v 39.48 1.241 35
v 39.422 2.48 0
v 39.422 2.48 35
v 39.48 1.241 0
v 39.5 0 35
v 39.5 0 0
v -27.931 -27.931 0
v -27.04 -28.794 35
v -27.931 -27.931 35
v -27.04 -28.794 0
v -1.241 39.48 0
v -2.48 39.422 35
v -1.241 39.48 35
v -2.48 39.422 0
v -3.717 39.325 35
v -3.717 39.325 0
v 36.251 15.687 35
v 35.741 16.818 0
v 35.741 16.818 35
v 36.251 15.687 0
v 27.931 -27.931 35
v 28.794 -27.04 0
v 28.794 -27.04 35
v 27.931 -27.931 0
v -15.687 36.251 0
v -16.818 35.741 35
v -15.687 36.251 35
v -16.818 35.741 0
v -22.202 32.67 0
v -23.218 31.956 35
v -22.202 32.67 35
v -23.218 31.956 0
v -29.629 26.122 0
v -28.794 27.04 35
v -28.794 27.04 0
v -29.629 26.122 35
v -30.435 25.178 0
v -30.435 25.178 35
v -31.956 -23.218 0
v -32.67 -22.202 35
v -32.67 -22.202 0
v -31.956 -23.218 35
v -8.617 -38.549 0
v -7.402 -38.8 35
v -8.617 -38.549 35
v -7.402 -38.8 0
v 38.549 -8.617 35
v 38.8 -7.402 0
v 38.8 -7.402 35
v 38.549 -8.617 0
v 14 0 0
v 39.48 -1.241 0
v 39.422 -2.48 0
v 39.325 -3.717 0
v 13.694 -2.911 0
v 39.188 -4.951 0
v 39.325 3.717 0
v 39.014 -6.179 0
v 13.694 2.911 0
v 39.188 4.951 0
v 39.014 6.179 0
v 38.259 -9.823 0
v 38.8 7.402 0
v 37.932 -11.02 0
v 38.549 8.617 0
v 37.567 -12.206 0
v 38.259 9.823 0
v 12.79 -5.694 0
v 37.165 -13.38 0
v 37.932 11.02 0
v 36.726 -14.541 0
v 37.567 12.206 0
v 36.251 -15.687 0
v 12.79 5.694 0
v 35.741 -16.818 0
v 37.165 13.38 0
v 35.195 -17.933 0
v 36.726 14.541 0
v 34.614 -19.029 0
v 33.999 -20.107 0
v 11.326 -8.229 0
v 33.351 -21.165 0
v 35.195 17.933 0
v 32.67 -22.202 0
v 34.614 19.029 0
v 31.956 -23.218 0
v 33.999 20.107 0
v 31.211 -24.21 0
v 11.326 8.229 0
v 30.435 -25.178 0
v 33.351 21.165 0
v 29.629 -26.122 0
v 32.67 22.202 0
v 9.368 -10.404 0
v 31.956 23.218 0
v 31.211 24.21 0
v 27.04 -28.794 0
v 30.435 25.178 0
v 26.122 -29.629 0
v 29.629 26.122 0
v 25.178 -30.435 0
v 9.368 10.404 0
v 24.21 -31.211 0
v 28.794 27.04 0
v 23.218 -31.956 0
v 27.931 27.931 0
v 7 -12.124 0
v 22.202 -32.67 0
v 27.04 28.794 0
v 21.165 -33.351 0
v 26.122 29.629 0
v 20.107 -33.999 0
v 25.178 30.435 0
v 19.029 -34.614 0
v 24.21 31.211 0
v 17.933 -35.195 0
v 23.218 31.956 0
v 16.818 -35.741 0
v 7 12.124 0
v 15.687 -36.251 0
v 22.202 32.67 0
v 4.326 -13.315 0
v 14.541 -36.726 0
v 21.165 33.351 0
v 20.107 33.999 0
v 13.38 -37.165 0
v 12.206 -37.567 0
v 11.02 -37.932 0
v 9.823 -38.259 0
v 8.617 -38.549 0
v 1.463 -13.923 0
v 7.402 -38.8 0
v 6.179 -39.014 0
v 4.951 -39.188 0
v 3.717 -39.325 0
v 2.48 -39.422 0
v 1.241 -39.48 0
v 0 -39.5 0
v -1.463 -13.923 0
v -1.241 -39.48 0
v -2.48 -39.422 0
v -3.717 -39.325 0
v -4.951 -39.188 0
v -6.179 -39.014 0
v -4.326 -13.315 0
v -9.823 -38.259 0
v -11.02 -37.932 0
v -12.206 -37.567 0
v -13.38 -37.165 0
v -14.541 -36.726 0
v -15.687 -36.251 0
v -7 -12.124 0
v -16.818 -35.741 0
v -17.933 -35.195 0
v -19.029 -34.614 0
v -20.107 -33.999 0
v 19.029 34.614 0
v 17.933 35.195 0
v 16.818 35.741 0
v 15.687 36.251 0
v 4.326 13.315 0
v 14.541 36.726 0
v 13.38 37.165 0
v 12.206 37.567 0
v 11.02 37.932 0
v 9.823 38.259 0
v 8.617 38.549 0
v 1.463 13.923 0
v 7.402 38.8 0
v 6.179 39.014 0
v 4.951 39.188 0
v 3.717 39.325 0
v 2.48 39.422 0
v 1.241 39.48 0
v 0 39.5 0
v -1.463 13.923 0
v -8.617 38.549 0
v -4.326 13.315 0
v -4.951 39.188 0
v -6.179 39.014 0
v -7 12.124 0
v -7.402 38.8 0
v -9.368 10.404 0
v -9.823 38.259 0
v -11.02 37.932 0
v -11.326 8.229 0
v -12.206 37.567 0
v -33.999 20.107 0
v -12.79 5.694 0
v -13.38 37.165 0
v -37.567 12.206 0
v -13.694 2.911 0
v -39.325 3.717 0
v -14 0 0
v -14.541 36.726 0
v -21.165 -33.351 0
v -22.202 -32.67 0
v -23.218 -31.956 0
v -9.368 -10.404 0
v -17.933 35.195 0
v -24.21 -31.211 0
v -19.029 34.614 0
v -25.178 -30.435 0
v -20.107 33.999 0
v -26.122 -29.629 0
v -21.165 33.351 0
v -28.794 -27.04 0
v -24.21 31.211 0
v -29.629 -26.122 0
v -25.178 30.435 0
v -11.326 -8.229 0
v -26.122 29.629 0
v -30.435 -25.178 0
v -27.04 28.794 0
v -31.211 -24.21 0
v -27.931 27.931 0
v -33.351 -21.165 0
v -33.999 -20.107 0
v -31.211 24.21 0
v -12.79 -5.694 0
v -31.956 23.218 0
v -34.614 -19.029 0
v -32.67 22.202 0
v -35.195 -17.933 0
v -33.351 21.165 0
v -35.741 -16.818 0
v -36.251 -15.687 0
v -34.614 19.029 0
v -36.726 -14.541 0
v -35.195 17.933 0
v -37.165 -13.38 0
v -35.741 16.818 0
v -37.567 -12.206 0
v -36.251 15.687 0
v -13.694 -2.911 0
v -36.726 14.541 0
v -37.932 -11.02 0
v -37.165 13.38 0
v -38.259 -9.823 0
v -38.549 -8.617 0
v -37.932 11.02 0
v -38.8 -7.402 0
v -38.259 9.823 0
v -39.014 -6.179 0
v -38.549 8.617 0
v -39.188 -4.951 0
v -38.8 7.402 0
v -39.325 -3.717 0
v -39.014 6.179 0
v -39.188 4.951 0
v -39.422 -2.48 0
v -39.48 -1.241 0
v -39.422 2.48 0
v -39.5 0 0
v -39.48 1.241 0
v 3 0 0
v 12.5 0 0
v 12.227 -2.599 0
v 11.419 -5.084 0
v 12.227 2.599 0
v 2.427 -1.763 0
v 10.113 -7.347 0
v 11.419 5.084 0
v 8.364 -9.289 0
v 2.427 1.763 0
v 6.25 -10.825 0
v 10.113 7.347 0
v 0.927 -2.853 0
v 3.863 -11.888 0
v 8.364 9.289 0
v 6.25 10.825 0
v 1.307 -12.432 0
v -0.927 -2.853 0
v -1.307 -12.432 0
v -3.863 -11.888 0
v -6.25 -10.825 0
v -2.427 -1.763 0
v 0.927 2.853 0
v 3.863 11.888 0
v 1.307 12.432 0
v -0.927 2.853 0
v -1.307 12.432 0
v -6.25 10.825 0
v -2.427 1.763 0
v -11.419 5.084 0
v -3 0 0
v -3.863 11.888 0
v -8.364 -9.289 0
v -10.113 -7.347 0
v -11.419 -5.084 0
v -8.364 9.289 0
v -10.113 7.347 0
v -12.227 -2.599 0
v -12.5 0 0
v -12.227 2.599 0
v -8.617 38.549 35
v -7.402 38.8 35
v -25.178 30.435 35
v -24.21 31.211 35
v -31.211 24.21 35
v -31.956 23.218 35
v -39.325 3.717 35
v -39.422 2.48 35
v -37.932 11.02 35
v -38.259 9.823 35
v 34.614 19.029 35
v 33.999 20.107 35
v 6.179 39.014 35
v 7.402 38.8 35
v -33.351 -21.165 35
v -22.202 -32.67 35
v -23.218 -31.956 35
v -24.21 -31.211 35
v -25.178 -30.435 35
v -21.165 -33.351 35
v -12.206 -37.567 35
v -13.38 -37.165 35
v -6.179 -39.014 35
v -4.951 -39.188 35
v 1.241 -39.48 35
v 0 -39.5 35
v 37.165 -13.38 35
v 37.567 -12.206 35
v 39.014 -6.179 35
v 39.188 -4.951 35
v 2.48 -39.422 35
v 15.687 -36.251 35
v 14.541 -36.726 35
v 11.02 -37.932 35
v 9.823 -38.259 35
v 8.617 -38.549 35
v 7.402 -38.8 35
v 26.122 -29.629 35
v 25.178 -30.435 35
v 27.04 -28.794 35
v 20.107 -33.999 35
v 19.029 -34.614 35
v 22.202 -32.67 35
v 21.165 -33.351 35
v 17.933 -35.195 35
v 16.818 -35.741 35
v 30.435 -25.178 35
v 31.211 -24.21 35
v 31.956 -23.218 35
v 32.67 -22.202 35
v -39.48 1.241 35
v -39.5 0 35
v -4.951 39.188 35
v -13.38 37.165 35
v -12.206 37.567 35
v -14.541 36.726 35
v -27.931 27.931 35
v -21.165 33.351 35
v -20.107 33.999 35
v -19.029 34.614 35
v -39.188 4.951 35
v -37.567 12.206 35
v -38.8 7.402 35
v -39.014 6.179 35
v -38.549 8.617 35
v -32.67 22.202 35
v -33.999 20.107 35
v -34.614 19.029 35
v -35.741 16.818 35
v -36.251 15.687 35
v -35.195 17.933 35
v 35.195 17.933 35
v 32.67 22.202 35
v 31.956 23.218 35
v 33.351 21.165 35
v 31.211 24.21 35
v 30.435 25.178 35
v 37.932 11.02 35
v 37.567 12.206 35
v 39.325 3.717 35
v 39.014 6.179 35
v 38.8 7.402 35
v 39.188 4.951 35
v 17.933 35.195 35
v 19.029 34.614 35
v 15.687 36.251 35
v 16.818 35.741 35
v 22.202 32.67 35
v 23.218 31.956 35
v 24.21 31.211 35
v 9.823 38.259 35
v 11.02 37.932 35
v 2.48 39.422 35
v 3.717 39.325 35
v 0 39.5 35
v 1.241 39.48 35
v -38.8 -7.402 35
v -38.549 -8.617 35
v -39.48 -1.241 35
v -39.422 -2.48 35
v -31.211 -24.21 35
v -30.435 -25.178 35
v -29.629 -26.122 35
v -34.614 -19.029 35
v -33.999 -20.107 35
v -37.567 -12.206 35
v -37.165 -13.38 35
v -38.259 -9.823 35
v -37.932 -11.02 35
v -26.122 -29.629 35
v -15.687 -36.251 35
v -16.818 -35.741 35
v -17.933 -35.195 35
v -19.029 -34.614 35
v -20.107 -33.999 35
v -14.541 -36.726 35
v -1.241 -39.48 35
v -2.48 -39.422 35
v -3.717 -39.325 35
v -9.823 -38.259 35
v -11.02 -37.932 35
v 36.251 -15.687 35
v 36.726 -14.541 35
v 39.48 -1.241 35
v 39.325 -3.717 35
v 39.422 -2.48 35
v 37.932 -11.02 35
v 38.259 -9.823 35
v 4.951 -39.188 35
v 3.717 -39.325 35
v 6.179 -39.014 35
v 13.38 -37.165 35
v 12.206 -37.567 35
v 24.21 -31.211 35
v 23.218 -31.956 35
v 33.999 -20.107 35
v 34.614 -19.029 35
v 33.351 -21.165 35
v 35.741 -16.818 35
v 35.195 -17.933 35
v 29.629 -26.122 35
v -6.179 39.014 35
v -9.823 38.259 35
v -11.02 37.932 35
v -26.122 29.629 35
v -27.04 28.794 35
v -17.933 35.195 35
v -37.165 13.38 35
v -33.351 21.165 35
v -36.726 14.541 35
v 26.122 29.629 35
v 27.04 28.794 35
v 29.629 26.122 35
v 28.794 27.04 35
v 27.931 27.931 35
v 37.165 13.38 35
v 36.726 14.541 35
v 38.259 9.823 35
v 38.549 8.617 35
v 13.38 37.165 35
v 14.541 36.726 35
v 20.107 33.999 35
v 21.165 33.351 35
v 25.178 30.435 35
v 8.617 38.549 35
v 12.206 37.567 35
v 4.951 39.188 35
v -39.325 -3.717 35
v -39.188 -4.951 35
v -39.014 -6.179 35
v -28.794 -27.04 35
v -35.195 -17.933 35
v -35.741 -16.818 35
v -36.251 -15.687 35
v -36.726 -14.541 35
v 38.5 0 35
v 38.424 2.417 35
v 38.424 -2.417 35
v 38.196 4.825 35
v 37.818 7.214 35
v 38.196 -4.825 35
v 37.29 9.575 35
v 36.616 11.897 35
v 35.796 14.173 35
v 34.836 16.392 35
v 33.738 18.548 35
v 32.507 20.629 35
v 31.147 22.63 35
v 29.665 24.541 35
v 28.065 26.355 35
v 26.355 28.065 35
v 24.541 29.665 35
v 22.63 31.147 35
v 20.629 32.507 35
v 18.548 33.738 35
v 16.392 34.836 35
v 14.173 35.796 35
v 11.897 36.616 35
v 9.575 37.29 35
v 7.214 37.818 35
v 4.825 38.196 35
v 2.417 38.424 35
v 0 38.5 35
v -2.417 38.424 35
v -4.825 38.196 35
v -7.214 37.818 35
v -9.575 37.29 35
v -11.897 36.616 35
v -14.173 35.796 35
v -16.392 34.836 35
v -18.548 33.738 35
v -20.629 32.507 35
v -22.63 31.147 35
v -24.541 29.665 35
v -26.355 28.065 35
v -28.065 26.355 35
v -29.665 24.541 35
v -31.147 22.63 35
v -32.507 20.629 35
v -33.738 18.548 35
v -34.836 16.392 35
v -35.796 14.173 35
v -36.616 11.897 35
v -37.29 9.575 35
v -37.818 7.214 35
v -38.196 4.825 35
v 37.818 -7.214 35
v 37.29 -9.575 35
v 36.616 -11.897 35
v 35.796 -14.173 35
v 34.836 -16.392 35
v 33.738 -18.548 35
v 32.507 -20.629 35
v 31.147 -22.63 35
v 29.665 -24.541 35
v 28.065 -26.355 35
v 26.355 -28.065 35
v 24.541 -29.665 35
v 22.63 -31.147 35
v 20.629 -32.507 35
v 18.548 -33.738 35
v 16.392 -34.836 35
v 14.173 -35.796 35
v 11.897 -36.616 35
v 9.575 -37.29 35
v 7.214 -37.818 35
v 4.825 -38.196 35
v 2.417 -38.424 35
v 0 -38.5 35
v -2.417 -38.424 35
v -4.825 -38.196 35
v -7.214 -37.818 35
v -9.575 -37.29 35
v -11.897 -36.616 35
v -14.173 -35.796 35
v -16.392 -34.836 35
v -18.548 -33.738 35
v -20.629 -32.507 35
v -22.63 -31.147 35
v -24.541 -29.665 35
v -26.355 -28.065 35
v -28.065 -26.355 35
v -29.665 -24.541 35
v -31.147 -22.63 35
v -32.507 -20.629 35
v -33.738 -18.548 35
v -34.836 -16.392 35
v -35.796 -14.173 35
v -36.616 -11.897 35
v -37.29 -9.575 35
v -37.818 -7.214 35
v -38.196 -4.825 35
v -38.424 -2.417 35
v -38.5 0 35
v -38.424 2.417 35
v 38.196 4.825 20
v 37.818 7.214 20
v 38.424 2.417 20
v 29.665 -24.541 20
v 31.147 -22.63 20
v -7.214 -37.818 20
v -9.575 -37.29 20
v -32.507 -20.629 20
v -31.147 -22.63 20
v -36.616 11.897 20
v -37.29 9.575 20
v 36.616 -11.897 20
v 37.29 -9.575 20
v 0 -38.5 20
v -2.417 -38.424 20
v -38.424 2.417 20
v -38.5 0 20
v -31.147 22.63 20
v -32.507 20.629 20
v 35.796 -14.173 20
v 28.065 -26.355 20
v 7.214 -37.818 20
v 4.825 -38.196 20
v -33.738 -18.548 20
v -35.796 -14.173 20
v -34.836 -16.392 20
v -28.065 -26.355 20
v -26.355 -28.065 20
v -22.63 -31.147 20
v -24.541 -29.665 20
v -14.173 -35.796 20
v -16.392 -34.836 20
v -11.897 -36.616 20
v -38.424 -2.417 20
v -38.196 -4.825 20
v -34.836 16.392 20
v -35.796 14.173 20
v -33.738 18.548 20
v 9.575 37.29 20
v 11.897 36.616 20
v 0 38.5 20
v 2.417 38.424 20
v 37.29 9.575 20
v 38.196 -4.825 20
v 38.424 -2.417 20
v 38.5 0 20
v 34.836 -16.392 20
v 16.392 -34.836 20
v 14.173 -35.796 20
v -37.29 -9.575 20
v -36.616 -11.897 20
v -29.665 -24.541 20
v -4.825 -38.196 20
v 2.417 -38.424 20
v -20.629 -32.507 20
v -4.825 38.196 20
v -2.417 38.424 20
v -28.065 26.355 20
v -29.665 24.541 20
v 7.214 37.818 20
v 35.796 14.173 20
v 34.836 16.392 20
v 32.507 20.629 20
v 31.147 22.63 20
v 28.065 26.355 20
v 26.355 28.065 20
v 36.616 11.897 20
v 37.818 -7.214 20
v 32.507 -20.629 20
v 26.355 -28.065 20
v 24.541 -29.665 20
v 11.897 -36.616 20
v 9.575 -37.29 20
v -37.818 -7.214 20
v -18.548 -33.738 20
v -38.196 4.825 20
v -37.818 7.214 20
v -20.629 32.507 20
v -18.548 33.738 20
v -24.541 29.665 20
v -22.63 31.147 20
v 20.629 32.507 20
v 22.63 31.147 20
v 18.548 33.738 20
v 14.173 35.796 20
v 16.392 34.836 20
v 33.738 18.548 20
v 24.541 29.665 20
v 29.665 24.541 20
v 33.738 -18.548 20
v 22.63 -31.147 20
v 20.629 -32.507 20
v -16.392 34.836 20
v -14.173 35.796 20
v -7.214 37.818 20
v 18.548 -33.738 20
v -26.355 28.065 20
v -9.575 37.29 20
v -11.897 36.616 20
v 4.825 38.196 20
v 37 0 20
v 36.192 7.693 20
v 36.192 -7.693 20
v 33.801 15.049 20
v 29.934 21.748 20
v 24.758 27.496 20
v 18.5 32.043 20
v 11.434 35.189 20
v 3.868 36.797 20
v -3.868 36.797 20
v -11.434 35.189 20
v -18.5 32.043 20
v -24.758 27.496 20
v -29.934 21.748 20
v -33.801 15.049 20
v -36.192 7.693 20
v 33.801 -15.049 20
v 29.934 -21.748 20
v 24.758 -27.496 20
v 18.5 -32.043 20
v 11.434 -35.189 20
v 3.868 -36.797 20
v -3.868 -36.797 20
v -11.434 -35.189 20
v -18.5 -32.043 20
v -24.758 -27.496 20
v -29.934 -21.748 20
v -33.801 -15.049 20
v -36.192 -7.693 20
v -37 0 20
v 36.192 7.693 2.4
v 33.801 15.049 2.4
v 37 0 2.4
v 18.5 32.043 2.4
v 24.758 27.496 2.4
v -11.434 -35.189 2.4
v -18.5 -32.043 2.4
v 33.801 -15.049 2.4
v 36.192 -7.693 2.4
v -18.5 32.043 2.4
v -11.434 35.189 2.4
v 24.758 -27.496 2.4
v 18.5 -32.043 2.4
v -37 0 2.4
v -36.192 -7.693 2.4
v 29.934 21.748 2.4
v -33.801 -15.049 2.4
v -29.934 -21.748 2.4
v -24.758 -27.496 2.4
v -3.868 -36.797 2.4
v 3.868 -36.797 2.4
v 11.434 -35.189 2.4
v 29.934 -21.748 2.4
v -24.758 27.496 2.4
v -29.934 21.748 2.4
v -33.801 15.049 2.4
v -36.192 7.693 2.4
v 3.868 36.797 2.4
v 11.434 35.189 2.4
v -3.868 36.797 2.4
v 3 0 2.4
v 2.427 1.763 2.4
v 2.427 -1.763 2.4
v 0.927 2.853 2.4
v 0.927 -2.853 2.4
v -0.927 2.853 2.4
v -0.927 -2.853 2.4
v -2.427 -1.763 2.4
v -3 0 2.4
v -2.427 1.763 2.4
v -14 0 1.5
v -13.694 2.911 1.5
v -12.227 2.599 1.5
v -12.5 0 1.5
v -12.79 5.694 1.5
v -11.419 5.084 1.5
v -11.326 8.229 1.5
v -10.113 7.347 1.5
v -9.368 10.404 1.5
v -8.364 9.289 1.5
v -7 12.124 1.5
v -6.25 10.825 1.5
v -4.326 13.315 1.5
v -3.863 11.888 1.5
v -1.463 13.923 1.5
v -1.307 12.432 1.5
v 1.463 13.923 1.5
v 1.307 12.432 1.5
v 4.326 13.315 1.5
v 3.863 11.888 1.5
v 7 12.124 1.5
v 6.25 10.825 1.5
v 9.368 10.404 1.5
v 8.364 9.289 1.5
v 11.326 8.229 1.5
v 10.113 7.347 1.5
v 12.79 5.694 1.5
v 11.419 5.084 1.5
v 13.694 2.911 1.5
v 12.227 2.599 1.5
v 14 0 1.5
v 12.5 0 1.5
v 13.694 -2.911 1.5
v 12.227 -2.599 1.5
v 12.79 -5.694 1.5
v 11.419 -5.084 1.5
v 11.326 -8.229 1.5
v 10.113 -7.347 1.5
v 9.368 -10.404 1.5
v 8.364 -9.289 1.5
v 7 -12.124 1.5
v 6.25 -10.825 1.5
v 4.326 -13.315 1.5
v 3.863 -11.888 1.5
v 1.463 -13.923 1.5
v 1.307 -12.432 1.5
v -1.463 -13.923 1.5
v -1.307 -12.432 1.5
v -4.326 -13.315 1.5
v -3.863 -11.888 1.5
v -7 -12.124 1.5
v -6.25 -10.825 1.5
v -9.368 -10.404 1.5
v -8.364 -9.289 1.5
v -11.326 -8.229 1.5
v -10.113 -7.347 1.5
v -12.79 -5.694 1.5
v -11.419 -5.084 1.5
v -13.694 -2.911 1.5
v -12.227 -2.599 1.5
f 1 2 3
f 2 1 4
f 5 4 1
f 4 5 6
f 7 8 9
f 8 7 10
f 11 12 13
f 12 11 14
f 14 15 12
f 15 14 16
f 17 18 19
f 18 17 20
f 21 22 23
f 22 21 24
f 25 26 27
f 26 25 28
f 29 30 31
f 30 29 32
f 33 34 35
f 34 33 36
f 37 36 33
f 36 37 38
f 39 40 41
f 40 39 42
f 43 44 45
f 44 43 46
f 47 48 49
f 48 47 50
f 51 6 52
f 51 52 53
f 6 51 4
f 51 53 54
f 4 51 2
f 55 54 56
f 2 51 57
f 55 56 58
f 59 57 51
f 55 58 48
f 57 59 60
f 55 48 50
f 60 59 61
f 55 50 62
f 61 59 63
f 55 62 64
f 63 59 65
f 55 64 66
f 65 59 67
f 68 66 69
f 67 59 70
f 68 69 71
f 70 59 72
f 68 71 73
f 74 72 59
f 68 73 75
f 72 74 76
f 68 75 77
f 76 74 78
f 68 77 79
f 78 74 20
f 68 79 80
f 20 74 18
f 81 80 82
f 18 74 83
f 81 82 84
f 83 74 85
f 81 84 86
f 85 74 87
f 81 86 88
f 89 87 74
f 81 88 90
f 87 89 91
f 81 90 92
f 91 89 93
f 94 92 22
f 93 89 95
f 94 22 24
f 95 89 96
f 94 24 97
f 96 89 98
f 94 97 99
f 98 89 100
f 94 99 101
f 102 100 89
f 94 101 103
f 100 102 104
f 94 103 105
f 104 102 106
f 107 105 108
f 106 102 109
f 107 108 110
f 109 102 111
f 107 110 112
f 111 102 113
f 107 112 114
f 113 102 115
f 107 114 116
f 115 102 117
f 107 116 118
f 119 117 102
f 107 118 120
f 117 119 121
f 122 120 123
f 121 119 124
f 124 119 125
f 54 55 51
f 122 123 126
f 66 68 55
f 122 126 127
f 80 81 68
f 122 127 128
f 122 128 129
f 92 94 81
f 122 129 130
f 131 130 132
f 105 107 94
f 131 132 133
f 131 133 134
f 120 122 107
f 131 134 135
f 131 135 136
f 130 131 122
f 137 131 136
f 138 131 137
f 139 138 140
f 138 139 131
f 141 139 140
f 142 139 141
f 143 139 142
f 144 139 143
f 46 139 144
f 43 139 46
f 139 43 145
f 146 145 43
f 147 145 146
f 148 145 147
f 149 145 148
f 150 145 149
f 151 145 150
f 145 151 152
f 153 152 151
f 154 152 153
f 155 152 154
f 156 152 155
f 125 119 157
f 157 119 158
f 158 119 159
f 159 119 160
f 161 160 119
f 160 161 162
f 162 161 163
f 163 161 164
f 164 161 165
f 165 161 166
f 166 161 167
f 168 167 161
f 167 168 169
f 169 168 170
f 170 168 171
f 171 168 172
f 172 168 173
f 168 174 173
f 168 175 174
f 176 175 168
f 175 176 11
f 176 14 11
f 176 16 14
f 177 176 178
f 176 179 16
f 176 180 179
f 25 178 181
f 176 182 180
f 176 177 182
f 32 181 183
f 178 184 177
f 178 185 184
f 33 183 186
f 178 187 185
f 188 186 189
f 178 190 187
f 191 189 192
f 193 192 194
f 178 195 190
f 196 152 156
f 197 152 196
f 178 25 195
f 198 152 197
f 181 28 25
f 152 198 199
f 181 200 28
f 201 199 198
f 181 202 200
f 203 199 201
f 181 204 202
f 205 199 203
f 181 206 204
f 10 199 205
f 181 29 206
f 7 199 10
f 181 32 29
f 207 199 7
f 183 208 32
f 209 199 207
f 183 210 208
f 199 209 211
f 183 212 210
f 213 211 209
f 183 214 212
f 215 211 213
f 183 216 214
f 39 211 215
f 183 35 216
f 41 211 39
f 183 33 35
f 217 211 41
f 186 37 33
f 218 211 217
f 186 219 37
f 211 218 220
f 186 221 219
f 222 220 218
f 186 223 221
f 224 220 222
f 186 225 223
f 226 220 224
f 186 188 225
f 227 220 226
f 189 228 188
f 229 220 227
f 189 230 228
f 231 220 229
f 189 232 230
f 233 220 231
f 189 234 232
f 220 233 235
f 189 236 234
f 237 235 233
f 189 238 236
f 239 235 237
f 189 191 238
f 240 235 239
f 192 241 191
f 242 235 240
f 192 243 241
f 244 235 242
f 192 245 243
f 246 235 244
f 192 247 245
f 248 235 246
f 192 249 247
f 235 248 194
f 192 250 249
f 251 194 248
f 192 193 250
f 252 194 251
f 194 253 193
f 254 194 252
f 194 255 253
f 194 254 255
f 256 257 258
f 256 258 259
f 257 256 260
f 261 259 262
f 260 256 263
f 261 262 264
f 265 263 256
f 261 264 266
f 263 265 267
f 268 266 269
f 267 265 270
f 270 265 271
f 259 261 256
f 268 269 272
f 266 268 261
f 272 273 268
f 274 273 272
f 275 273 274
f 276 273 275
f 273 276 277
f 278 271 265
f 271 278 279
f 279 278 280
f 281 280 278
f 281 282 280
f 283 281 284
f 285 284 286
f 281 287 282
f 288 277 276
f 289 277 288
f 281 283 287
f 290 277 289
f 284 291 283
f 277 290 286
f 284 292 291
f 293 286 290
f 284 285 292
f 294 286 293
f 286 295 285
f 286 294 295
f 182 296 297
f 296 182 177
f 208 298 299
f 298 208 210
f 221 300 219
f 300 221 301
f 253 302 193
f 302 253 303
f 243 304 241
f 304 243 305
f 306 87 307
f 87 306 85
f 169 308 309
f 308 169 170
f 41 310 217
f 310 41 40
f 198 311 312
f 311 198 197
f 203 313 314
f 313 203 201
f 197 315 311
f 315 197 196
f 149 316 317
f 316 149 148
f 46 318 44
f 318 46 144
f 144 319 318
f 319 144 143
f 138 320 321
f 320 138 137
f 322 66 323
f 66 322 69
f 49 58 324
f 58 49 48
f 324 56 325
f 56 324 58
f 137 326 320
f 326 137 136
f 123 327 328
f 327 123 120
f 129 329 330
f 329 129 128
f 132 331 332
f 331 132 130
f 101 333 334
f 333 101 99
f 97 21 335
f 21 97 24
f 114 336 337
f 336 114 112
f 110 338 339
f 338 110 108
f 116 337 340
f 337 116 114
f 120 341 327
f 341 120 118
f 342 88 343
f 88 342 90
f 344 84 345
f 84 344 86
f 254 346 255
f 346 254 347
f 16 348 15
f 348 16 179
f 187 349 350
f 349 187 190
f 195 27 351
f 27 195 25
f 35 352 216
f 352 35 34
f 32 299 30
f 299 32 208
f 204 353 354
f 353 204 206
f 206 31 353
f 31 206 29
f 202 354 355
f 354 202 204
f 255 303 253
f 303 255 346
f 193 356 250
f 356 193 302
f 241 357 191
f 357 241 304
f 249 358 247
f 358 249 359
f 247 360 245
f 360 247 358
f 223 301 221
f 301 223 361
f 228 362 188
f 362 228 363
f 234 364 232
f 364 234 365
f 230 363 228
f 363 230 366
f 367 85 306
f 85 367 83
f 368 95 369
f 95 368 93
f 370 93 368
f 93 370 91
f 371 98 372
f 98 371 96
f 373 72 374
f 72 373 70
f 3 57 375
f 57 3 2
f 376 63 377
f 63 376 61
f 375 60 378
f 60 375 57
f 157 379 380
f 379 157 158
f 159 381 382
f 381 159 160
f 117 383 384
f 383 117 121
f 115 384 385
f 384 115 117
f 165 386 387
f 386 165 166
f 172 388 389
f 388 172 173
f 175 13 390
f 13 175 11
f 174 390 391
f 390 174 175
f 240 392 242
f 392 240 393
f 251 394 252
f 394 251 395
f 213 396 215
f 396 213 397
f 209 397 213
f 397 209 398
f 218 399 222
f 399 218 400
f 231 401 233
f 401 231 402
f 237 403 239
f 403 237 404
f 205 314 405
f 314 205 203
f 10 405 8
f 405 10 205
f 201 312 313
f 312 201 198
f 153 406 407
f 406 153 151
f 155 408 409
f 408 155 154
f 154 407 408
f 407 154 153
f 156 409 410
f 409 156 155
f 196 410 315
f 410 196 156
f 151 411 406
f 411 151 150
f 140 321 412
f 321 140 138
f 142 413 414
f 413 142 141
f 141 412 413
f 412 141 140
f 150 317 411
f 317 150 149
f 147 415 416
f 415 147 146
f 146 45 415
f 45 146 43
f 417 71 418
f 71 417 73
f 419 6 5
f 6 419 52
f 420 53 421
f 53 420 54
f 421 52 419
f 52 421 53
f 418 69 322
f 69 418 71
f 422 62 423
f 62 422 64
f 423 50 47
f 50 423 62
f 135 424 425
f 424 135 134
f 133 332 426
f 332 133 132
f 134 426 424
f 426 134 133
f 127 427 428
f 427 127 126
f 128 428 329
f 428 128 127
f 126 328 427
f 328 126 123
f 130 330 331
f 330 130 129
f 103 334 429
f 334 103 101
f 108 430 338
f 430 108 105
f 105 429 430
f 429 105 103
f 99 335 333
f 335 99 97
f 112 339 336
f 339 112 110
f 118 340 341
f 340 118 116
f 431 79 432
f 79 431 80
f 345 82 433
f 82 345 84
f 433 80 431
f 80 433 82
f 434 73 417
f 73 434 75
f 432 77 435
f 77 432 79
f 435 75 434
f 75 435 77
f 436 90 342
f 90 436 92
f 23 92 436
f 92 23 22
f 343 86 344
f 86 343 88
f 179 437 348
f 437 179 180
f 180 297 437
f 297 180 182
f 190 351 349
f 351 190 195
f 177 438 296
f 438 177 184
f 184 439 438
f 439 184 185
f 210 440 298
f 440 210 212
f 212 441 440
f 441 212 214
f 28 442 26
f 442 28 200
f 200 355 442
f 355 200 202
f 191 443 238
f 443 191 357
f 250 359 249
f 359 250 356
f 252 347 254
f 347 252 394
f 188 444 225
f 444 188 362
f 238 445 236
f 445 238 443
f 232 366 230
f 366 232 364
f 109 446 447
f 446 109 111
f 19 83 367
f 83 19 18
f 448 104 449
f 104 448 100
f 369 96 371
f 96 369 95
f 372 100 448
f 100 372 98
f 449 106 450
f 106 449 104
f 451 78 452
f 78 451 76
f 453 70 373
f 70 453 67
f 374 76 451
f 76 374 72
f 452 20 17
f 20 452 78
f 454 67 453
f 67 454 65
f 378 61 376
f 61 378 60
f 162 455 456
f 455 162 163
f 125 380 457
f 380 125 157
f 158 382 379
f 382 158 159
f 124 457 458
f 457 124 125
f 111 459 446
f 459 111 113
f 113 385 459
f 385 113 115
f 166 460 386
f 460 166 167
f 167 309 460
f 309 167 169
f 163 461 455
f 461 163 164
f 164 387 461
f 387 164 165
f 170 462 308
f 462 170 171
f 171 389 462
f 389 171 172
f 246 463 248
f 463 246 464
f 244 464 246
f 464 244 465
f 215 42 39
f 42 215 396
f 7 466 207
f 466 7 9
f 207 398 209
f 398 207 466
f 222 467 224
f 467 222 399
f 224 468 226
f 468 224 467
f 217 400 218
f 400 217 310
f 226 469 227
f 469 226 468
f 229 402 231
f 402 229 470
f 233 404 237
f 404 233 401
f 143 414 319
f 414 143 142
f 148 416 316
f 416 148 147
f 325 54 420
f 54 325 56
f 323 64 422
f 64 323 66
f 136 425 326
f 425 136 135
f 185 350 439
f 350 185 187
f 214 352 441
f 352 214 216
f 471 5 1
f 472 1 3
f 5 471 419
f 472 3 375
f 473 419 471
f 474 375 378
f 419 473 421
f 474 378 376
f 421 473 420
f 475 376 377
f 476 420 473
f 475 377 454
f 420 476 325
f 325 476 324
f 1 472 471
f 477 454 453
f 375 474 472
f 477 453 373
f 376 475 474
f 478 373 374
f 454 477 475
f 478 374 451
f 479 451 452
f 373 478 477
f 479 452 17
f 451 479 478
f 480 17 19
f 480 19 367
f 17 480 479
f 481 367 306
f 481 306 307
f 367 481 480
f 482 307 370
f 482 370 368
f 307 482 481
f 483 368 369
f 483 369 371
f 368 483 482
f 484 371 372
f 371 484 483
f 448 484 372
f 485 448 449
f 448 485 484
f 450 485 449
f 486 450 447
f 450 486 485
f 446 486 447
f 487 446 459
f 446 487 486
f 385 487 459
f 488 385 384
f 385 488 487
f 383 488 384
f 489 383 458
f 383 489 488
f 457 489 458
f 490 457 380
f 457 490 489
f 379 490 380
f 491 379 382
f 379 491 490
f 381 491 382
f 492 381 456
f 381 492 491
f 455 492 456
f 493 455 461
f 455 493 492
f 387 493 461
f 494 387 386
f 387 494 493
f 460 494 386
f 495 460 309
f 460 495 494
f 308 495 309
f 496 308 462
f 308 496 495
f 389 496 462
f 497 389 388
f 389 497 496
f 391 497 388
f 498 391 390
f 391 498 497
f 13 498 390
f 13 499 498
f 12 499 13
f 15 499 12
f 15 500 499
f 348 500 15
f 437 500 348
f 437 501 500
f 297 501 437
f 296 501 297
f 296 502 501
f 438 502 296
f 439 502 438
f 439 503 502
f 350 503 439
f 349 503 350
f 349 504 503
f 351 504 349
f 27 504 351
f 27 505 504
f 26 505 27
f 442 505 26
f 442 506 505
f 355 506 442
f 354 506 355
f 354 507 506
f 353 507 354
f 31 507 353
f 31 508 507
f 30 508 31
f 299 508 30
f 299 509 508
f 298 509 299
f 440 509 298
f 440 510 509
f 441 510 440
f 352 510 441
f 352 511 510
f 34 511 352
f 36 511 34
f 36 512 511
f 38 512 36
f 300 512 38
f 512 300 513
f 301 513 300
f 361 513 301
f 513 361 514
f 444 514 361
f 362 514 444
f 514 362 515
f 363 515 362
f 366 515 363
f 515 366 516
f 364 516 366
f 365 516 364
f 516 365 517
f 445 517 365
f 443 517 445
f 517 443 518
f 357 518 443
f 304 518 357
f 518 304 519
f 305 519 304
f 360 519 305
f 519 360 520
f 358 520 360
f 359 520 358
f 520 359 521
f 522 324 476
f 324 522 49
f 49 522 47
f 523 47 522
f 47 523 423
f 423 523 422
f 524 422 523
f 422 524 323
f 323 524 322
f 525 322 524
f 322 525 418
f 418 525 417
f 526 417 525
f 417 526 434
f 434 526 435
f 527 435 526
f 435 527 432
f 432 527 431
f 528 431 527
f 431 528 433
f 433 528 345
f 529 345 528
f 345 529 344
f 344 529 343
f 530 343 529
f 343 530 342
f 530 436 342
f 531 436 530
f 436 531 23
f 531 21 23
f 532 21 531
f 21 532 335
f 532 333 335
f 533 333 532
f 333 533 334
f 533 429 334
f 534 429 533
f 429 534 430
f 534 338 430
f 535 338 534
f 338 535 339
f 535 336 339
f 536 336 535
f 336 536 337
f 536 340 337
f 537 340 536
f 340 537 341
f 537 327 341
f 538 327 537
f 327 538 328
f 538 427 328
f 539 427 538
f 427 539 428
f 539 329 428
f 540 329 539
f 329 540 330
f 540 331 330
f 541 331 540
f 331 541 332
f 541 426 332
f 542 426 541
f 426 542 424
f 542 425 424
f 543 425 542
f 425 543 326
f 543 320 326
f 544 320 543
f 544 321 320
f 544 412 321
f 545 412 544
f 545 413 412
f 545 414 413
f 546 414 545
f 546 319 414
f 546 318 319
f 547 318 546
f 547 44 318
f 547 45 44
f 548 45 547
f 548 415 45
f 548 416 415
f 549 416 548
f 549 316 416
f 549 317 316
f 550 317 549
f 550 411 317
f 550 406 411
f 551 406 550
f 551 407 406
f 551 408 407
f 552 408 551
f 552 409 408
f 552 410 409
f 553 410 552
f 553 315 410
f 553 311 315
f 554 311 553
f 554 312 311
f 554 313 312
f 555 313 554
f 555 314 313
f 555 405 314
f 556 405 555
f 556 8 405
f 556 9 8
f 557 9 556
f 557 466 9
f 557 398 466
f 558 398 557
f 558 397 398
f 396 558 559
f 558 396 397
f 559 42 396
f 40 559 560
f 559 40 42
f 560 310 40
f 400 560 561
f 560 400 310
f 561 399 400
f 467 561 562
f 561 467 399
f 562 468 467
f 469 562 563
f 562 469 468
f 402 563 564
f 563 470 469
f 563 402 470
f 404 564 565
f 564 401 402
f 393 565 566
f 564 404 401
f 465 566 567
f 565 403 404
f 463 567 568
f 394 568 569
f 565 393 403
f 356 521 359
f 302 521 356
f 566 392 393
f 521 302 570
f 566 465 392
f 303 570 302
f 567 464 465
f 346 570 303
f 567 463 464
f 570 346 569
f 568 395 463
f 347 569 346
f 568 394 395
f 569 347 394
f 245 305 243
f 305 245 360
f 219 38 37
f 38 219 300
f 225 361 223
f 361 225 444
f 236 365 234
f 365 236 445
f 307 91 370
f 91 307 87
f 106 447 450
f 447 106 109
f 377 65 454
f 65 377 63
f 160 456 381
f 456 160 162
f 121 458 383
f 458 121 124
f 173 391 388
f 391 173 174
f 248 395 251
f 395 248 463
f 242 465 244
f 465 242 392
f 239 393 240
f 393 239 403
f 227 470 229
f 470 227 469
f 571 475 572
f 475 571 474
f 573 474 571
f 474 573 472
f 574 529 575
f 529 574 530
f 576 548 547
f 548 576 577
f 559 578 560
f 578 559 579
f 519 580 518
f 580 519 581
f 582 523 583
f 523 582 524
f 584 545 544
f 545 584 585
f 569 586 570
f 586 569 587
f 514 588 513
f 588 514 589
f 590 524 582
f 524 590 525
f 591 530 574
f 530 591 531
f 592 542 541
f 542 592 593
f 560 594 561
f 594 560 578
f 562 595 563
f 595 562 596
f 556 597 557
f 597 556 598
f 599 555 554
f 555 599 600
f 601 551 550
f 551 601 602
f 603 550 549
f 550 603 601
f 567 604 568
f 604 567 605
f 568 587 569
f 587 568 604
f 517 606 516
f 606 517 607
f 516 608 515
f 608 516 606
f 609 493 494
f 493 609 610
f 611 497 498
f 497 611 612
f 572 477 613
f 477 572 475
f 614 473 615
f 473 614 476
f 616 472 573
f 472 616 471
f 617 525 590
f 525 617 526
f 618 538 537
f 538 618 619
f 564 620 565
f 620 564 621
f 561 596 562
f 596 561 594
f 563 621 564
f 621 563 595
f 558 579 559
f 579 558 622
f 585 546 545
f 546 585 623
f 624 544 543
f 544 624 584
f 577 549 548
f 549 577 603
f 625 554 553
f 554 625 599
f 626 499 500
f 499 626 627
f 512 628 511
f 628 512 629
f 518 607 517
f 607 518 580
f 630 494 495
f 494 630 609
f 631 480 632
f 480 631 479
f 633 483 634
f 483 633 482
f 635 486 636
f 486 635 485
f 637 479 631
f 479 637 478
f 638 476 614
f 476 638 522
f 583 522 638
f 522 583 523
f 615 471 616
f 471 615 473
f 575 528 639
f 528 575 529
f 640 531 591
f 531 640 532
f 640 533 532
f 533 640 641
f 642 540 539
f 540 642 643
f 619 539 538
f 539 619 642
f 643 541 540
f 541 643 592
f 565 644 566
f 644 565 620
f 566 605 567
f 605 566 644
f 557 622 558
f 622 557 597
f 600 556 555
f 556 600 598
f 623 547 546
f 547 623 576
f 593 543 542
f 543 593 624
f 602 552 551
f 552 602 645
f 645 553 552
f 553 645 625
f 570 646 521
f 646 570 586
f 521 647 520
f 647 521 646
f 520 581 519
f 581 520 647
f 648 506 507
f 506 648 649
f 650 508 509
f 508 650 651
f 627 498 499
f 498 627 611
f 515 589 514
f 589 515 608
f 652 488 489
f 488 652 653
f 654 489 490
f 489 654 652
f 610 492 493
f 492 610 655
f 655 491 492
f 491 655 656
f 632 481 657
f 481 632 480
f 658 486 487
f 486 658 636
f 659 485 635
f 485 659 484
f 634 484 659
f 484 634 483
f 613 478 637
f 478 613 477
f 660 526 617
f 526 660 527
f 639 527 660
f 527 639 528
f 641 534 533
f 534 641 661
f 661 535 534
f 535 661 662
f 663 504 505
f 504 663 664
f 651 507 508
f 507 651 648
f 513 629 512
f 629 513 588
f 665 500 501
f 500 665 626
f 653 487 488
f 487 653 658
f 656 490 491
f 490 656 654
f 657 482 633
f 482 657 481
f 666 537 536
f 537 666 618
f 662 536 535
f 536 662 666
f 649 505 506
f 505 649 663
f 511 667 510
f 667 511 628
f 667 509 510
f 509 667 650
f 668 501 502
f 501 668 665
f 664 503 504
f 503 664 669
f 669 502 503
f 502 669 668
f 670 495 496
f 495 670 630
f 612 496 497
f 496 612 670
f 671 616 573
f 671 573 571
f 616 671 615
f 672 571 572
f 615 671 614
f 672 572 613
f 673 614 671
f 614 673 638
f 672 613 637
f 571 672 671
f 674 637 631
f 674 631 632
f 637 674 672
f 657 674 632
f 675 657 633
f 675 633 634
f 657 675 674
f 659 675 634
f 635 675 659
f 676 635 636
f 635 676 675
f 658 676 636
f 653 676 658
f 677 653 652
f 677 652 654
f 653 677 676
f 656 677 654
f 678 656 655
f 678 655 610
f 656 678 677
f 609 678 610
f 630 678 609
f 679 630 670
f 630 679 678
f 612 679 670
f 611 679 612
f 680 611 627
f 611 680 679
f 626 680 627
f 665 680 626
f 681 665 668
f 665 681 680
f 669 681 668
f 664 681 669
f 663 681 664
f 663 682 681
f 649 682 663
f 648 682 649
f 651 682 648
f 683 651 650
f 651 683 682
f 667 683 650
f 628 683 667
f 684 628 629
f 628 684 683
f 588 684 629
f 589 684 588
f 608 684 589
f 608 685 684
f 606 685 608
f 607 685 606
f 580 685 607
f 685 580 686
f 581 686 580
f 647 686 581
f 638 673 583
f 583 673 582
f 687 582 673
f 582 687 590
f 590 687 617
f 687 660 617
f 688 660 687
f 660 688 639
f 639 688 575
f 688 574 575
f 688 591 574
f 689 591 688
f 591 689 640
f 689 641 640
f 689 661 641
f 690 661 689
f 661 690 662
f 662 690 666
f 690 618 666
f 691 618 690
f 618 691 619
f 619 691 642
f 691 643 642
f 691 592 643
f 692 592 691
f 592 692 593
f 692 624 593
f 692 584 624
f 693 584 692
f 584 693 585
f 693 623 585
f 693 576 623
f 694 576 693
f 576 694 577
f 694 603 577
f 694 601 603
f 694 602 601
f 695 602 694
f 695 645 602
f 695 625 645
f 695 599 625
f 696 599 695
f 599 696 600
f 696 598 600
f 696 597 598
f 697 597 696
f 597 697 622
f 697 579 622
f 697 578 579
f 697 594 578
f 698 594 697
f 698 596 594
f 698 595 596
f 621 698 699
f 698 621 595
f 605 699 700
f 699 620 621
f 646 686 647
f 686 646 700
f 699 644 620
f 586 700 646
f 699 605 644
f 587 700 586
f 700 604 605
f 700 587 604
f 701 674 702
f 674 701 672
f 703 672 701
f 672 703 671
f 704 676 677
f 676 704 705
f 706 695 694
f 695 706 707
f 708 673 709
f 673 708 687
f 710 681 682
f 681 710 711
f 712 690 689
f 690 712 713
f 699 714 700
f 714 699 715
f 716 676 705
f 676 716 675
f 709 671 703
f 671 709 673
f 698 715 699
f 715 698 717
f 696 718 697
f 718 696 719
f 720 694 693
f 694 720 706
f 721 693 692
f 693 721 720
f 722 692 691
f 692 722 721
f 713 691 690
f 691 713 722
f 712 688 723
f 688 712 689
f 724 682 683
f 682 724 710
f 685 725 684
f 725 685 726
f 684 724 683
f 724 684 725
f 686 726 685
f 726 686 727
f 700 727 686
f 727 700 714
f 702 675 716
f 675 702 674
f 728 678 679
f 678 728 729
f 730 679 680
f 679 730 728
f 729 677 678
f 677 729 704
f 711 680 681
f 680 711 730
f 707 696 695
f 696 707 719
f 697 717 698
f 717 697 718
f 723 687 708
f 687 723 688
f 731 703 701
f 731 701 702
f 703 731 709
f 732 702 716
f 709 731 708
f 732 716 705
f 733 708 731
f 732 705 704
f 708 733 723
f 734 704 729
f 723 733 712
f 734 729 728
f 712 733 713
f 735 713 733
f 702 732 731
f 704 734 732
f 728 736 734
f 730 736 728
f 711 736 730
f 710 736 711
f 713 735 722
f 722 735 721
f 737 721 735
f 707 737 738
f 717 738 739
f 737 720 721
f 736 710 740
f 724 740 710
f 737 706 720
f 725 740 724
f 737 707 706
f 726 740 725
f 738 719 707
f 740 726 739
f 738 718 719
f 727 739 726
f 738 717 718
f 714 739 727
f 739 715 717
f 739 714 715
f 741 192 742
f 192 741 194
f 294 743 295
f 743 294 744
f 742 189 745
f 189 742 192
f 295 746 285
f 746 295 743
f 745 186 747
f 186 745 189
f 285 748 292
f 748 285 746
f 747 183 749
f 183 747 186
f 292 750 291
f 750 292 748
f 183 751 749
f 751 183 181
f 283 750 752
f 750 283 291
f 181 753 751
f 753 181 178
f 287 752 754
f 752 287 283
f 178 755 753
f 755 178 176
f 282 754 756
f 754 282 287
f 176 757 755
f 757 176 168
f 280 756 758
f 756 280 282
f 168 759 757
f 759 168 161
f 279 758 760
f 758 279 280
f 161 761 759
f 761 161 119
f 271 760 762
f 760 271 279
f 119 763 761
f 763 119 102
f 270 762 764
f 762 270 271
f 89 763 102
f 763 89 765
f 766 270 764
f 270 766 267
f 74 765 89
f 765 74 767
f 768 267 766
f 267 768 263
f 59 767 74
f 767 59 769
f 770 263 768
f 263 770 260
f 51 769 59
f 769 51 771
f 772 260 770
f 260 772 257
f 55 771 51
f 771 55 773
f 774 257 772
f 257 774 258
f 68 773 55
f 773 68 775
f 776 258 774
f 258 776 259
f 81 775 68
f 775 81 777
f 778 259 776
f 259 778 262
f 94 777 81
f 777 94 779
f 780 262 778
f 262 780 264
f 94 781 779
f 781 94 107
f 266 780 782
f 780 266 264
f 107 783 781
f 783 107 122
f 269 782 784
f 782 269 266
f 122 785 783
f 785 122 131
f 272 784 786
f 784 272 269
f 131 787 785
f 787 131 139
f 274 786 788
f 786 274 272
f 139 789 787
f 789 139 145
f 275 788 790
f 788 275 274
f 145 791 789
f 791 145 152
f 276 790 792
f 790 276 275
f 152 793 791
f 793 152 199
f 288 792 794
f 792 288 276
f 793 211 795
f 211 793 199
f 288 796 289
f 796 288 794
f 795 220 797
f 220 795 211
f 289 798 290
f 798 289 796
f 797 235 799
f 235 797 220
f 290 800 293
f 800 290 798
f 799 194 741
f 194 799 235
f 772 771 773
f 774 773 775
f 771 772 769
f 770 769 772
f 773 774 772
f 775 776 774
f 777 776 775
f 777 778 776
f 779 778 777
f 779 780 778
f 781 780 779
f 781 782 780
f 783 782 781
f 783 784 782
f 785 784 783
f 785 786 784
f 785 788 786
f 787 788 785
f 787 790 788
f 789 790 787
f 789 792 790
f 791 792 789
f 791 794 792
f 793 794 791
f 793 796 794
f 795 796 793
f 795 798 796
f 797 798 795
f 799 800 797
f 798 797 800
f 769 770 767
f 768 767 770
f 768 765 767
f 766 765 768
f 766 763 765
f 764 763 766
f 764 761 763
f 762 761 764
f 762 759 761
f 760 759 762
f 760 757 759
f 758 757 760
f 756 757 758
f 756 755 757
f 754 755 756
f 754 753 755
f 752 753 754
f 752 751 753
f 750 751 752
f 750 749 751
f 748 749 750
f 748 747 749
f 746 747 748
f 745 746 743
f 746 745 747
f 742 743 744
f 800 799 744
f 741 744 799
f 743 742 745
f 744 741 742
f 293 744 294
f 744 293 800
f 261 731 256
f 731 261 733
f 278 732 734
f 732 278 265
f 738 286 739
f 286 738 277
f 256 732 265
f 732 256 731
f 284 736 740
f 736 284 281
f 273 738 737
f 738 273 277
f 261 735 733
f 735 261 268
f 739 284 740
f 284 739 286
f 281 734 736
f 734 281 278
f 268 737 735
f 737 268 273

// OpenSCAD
difference(){
// the top surface
linear_extrude(height=2.4)
circle(39.5, $fn = 200);
//the ring for the gumball top
rotate_extrude()
    translate([12.5,0,0])
    square(1.5);
linear_extrude(height=2.4)    
    circle(3);
}
// the walls
difference(){
    linear_extrude(height=35)
circle(39.5, $fn = 200);
    linear_extrude(height=35)
circle(38.5, $fn = 100);
}

// the step
difference(){
    linear_extrude(height=20)
circle(39);
    linear_extrude(height=20)
circle(37);
}
